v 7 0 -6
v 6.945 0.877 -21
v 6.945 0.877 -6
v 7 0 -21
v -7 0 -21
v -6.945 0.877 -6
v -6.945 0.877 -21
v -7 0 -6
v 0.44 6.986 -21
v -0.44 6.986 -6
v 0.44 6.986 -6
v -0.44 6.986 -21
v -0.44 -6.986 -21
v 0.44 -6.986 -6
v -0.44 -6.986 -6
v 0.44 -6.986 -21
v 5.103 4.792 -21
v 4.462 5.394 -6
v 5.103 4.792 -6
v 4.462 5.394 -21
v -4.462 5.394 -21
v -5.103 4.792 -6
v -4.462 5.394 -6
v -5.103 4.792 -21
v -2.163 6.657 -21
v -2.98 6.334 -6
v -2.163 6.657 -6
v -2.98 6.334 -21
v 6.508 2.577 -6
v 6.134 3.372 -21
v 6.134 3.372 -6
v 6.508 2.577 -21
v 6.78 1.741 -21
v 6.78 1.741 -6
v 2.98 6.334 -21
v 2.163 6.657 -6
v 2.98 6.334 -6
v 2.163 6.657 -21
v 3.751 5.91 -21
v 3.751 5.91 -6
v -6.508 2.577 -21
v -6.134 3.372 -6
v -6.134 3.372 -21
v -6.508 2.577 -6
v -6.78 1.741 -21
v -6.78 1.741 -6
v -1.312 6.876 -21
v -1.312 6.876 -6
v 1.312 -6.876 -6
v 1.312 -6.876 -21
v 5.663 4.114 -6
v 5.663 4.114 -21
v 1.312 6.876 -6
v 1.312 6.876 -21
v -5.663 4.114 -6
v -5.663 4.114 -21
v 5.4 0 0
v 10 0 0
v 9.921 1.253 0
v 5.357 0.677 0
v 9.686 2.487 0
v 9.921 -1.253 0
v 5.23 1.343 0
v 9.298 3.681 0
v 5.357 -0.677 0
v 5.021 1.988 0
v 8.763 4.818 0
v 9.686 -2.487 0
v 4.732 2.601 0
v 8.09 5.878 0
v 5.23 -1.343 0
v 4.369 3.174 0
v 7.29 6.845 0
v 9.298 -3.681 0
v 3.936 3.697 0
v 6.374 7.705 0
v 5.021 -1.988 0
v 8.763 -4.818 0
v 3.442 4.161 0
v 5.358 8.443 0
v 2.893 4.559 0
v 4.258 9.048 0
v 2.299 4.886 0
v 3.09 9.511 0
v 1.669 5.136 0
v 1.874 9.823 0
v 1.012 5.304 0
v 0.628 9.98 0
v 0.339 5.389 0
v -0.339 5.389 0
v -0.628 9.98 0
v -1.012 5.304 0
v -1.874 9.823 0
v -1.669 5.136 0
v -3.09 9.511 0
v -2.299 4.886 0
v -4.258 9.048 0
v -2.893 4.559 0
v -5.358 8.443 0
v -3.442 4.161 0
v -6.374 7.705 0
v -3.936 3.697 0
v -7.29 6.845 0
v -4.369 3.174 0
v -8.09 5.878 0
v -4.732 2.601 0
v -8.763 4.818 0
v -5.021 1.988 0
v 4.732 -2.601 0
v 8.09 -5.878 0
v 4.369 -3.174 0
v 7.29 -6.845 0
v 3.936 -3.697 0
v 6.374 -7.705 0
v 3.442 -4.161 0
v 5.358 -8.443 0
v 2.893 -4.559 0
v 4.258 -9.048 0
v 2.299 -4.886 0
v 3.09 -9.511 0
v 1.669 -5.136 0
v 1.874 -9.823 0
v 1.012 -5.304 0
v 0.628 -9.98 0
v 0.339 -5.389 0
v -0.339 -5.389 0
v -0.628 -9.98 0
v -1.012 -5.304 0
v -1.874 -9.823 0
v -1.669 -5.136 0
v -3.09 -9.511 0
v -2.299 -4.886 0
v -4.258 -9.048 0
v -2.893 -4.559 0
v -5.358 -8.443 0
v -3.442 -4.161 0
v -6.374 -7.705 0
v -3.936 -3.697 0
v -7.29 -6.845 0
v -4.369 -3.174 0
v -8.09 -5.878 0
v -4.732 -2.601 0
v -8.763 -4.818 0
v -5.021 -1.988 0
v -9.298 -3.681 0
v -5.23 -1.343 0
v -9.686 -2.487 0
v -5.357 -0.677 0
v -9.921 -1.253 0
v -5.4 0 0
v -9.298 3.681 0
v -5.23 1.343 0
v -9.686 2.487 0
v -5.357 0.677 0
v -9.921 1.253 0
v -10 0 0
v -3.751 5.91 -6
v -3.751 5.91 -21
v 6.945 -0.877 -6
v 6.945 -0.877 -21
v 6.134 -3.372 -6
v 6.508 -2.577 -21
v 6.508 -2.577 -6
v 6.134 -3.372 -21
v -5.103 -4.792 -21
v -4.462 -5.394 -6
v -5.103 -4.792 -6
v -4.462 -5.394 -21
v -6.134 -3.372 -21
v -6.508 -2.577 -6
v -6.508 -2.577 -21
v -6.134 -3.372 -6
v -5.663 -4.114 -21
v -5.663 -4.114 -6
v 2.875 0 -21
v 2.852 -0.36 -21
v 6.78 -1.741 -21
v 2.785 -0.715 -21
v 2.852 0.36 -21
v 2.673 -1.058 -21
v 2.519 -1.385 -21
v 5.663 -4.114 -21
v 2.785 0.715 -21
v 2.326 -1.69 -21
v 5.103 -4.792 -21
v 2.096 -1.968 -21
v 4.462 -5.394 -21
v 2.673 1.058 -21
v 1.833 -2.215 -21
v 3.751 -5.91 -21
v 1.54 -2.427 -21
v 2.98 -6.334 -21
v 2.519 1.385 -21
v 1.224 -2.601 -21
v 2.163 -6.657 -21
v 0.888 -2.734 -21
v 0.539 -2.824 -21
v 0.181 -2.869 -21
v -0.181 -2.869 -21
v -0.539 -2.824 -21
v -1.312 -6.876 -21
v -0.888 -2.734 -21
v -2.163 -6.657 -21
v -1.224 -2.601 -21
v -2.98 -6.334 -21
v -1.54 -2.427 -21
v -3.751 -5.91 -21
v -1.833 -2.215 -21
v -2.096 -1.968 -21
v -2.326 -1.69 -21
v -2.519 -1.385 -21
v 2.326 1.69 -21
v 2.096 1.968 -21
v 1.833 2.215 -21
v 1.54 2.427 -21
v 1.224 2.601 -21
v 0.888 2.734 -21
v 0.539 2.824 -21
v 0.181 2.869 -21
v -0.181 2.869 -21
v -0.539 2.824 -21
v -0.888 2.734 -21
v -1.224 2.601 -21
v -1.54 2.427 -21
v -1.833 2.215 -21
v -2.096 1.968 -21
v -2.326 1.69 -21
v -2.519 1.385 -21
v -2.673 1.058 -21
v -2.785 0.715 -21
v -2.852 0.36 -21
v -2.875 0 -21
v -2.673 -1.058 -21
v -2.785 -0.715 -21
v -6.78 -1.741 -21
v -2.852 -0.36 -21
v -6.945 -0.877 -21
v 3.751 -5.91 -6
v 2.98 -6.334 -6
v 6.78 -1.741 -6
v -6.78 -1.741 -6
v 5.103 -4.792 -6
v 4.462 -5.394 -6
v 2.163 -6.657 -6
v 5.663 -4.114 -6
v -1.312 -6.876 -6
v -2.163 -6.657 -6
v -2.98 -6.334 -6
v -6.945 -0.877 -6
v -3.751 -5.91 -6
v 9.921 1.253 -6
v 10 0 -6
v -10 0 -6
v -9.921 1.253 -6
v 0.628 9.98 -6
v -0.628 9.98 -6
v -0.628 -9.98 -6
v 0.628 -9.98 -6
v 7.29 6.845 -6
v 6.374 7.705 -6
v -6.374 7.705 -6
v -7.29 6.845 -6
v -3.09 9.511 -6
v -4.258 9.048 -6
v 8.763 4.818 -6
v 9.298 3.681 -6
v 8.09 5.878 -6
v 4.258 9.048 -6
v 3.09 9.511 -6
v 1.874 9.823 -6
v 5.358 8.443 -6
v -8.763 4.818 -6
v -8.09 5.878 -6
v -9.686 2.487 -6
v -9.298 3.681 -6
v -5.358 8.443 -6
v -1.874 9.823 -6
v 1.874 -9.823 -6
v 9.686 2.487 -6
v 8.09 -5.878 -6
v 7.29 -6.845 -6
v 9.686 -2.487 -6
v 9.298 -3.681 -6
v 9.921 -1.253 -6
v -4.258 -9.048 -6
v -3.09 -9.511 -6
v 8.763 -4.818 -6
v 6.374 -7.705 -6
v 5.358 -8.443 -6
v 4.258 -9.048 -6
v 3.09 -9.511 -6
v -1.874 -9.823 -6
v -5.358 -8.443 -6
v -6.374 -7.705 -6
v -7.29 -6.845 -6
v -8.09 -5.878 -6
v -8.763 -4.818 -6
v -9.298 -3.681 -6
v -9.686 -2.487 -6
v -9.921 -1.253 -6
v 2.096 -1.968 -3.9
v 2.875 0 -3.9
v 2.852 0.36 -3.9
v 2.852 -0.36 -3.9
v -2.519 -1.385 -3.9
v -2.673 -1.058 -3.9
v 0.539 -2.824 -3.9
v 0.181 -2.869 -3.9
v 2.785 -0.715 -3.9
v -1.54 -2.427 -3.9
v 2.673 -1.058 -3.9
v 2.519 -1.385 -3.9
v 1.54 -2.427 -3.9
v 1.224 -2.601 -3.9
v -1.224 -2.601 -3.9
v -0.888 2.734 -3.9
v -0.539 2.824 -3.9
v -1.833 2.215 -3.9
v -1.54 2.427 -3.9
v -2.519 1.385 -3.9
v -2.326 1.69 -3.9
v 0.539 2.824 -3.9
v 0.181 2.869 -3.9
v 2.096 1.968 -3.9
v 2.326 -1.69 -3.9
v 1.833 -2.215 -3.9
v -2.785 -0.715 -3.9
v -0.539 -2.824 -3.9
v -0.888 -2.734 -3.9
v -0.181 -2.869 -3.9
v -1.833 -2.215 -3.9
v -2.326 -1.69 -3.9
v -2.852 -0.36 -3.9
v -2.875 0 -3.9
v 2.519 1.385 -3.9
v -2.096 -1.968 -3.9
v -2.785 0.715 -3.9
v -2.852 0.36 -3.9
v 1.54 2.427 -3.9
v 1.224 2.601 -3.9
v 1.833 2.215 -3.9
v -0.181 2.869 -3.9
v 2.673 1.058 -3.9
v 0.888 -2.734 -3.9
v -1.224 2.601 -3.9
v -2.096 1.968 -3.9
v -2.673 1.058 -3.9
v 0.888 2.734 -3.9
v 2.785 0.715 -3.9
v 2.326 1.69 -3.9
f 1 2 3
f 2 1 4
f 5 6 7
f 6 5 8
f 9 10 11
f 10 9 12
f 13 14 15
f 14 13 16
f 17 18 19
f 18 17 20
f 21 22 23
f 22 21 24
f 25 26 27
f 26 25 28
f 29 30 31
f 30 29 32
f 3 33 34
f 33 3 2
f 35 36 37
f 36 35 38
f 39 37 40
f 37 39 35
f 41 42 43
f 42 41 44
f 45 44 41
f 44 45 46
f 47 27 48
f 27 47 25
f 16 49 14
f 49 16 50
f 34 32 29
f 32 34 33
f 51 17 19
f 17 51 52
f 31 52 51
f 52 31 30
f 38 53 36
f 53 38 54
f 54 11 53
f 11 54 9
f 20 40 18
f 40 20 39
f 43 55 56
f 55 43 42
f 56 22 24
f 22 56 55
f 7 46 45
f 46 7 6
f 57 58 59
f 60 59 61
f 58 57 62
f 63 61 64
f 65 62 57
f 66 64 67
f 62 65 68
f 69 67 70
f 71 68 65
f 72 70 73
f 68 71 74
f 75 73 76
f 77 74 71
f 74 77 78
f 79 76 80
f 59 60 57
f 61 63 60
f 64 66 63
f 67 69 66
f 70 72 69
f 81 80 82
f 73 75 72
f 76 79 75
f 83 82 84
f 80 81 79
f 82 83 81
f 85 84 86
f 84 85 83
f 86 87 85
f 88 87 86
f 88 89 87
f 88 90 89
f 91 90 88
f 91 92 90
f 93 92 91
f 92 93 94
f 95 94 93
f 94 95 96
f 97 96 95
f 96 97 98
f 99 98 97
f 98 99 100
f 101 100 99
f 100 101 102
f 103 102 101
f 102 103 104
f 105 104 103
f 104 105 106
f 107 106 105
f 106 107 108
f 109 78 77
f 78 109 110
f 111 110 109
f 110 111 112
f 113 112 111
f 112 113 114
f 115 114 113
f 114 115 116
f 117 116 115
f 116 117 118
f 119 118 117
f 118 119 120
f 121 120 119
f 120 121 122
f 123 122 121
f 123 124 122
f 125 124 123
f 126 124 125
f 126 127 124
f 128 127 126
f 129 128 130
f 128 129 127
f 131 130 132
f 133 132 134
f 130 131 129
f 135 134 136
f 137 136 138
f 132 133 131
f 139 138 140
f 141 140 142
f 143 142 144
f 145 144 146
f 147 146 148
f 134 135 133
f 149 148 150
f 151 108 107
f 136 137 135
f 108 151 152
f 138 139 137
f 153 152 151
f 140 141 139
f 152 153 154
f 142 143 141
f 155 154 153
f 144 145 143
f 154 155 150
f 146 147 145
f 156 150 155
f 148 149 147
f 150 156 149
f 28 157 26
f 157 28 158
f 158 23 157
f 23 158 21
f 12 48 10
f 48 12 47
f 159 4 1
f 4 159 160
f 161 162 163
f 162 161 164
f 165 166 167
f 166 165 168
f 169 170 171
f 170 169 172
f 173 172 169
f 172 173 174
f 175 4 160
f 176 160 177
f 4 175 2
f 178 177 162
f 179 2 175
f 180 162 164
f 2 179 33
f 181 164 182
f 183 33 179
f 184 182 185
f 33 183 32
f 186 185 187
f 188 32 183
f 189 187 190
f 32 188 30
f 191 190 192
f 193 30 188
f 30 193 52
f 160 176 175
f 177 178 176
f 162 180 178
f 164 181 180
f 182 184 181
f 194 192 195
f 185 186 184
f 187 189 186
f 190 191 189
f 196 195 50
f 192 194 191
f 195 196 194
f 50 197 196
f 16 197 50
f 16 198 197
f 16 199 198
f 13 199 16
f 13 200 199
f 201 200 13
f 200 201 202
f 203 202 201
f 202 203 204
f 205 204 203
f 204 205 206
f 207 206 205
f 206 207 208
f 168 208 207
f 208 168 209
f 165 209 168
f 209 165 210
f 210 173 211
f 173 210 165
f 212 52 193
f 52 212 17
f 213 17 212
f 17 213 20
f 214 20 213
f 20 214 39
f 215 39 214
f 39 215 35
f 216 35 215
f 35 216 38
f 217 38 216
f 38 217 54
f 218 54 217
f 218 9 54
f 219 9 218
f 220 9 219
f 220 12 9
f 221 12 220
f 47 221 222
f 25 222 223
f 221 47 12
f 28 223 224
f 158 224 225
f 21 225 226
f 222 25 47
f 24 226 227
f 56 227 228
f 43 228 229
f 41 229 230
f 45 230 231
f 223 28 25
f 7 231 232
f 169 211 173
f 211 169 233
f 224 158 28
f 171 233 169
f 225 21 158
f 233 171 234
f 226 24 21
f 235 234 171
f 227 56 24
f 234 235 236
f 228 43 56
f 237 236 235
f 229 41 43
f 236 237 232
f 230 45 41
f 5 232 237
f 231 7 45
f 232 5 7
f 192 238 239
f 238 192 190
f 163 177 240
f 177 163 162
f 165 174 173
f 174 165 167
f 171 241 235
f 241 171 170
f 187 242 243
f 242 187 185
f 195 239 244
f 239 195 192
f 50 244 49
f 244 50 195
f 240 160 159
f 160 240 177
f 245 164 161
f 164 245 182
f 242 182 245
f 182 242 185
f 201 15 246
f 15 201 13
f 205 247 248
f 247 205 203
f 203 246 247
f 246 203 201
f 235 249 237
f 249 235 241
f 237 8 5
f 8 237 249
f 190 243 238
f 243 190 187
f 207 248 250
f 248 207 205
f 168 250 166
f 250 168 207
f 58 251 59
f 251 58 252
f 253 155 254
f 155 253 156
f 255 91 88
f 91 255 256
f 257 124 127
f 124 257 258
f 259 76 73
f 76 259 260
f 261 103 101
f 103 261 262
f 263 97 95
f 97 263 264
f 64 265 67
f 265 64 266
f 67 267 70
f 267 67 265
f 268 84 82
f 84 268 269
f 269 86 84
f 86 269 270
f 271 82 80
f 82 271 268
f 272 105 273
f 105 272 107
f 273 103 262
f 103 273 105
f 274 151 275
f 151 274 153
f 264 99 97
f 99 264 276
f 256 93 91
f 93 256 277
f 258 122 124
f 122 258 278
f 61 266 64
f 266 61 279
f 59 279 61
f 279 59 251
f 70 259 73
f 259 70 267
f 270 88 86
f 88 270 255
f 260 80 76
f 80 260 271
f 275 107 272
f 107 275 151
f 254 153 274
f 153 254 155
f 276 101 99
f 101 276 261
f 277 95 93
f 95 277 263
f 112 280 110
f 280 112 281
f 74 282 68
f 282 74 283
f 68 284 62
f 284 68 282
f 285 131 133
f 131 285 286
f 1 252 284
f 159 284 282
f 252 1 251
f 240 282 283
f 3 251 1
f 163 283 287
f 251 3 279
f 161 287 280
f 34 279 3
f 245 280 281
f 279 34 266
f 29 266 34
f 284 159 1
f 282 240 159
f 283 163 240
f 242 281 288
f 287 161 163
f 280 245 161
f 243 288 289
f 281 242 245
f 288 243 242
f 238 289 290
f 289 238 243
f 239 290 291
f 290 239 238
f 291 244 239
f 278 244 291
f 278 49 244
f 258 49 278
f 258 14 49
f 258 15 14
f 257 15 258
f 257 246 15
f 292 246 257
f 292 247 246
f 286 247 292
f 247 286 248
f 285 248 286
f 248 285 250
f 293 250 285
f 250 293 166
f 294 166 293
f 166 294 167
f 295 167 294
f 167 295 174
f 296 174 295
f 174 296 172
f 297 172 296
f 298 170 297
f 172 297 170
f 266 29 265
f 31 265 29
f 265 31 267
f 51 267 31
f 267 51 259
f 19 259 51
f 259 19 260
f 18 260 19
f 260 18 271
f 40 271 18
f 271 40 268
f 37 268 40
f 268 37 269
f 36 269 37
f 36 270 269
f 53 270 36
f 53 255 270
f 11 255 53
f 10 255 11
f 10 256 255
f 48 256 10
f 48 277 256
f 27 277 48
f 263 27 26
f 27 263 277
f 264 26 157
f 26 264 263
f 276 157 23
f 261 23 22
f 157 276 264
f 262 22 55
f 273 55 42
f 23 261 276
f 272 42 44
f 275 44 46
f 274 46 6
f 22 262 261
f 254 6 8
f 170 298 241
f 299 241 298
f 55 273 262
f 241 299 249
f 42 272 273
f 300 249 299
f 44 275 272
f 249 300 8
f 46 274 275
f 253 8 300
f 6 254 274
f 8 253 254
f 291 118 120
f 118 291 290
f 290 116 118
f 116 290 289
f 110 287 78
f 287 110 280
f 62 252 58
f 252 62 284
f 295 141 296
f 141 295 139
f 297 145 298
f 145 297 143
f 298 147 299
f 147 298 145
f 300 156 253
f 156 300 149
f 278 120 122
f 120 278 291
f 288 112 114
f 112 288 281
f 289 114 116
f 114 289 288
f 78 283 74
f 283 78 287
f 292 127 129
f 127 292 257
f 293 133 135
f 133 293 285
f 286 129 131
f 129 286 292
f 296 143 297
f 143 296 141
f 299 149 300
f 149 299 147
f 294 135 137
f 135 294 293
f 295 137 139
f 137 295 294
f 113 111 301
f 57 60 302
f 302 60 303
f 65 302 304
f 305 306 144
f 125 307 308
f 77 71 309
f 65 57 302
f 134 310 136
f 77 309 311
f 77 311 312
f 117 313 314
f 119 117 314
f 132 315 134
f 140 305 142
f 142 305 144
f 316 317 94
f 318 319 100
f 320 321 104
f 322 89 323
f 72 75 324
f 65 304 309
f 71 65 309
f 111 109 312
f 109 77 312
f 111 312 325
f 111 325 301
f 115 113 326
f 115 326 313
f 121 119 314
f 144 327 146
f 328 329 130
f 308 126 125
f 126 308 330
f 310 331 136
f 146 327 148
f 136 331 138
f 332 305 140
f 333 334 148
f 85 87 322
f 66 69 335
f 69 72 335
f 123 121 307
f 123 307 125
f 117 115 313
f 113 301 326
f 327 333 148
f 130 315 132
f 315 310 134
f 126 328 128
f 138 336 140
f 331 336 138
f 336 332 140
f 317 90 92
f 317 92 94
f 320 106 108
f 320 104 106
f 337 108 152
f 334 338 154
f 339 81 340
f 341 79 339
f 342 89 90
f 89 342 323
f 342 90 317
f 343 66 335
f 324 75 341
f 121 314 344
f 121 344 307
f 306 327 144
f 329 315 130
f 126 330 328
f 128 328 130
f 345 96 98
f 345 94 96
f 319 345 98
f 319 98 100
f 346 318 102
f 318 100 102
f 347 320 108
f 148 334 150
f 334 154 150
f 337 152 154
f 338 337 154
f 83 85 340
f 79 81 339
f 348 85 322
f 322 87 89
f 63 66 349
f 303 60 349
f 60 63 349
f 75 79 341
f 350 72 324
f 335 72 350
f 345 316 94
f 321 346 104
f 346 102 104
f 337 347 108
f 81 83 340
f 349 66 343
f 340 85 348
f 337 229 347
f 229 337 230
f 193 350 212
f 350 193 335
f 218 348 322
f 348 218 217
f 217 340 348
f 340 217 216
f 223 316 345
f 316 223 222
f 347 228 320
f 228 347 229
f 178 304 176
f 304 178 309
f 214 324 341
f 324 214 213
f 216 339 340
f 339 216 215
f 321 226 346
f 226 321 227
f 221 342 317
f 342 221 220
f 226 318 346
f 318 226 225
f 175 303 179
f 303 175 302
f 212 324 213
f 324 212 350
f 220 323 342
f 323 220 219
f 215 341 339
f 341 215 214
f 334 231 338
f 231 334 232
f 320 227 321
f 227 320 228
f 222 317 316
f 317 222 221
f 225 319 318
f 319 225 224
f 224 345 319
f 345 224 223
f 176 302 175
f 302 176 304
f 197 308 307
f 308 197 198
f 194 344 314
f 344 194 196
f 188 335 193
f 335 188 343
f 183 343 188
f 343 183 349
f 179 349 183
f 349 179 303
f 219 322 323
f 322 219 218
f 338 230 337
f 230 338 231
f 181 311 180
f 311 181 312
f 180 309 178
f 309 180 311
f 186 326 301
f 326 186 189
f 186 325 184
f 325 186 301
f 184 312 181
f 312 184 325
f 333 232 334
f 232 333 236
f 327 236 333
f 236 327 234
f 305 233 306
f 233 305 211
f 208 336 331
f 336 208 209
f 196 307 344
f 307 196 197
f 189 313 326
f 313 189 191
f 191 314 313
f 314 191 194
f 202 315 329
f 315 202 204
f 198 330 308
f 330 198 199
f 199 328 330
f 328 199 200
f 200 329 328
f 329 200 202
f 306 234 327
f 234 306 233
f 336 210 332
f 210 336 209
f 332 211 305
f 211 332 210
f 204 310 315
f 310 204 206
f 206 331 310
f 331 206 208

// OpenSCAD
$fn = 50;


difference() {
	union() {
		translate(v = [0, 0, -21.0000000000]) {
			cylinder(h = 21, r = 7.0000000000);
		}
		translate(v = [0, 0, -6.0000000000]) {
			cylinder(h = 6, r = 10.0000000000);
		}
	}
	union() {
		translate(v = [0, 0, 0]) {
			rotate(a = [0, 0, 0]) {
				difference() {
					union() {
						#translate(v = [0, 0, -21.0000000000]) {
							cylinder(h = 21, r = 2.6000000000);
						}
						#translate(v = [0, 0, -3.9000000000]) {
							cylinder(h = 3.9000000000, r1 = 2.8750000000, r2 = 5.4000000000);
						}
						#translate(v = [0, 0, -21.0000000000]) {
							cylinder(h = 21, r = 2.8750000000);
						}
						#translate(v = [0, 0, -21.0000000000]) {
							cylinder(h = 21, r = 2.6000000000);
						}
					}
					union();
				}
			}
		}
	}
}
